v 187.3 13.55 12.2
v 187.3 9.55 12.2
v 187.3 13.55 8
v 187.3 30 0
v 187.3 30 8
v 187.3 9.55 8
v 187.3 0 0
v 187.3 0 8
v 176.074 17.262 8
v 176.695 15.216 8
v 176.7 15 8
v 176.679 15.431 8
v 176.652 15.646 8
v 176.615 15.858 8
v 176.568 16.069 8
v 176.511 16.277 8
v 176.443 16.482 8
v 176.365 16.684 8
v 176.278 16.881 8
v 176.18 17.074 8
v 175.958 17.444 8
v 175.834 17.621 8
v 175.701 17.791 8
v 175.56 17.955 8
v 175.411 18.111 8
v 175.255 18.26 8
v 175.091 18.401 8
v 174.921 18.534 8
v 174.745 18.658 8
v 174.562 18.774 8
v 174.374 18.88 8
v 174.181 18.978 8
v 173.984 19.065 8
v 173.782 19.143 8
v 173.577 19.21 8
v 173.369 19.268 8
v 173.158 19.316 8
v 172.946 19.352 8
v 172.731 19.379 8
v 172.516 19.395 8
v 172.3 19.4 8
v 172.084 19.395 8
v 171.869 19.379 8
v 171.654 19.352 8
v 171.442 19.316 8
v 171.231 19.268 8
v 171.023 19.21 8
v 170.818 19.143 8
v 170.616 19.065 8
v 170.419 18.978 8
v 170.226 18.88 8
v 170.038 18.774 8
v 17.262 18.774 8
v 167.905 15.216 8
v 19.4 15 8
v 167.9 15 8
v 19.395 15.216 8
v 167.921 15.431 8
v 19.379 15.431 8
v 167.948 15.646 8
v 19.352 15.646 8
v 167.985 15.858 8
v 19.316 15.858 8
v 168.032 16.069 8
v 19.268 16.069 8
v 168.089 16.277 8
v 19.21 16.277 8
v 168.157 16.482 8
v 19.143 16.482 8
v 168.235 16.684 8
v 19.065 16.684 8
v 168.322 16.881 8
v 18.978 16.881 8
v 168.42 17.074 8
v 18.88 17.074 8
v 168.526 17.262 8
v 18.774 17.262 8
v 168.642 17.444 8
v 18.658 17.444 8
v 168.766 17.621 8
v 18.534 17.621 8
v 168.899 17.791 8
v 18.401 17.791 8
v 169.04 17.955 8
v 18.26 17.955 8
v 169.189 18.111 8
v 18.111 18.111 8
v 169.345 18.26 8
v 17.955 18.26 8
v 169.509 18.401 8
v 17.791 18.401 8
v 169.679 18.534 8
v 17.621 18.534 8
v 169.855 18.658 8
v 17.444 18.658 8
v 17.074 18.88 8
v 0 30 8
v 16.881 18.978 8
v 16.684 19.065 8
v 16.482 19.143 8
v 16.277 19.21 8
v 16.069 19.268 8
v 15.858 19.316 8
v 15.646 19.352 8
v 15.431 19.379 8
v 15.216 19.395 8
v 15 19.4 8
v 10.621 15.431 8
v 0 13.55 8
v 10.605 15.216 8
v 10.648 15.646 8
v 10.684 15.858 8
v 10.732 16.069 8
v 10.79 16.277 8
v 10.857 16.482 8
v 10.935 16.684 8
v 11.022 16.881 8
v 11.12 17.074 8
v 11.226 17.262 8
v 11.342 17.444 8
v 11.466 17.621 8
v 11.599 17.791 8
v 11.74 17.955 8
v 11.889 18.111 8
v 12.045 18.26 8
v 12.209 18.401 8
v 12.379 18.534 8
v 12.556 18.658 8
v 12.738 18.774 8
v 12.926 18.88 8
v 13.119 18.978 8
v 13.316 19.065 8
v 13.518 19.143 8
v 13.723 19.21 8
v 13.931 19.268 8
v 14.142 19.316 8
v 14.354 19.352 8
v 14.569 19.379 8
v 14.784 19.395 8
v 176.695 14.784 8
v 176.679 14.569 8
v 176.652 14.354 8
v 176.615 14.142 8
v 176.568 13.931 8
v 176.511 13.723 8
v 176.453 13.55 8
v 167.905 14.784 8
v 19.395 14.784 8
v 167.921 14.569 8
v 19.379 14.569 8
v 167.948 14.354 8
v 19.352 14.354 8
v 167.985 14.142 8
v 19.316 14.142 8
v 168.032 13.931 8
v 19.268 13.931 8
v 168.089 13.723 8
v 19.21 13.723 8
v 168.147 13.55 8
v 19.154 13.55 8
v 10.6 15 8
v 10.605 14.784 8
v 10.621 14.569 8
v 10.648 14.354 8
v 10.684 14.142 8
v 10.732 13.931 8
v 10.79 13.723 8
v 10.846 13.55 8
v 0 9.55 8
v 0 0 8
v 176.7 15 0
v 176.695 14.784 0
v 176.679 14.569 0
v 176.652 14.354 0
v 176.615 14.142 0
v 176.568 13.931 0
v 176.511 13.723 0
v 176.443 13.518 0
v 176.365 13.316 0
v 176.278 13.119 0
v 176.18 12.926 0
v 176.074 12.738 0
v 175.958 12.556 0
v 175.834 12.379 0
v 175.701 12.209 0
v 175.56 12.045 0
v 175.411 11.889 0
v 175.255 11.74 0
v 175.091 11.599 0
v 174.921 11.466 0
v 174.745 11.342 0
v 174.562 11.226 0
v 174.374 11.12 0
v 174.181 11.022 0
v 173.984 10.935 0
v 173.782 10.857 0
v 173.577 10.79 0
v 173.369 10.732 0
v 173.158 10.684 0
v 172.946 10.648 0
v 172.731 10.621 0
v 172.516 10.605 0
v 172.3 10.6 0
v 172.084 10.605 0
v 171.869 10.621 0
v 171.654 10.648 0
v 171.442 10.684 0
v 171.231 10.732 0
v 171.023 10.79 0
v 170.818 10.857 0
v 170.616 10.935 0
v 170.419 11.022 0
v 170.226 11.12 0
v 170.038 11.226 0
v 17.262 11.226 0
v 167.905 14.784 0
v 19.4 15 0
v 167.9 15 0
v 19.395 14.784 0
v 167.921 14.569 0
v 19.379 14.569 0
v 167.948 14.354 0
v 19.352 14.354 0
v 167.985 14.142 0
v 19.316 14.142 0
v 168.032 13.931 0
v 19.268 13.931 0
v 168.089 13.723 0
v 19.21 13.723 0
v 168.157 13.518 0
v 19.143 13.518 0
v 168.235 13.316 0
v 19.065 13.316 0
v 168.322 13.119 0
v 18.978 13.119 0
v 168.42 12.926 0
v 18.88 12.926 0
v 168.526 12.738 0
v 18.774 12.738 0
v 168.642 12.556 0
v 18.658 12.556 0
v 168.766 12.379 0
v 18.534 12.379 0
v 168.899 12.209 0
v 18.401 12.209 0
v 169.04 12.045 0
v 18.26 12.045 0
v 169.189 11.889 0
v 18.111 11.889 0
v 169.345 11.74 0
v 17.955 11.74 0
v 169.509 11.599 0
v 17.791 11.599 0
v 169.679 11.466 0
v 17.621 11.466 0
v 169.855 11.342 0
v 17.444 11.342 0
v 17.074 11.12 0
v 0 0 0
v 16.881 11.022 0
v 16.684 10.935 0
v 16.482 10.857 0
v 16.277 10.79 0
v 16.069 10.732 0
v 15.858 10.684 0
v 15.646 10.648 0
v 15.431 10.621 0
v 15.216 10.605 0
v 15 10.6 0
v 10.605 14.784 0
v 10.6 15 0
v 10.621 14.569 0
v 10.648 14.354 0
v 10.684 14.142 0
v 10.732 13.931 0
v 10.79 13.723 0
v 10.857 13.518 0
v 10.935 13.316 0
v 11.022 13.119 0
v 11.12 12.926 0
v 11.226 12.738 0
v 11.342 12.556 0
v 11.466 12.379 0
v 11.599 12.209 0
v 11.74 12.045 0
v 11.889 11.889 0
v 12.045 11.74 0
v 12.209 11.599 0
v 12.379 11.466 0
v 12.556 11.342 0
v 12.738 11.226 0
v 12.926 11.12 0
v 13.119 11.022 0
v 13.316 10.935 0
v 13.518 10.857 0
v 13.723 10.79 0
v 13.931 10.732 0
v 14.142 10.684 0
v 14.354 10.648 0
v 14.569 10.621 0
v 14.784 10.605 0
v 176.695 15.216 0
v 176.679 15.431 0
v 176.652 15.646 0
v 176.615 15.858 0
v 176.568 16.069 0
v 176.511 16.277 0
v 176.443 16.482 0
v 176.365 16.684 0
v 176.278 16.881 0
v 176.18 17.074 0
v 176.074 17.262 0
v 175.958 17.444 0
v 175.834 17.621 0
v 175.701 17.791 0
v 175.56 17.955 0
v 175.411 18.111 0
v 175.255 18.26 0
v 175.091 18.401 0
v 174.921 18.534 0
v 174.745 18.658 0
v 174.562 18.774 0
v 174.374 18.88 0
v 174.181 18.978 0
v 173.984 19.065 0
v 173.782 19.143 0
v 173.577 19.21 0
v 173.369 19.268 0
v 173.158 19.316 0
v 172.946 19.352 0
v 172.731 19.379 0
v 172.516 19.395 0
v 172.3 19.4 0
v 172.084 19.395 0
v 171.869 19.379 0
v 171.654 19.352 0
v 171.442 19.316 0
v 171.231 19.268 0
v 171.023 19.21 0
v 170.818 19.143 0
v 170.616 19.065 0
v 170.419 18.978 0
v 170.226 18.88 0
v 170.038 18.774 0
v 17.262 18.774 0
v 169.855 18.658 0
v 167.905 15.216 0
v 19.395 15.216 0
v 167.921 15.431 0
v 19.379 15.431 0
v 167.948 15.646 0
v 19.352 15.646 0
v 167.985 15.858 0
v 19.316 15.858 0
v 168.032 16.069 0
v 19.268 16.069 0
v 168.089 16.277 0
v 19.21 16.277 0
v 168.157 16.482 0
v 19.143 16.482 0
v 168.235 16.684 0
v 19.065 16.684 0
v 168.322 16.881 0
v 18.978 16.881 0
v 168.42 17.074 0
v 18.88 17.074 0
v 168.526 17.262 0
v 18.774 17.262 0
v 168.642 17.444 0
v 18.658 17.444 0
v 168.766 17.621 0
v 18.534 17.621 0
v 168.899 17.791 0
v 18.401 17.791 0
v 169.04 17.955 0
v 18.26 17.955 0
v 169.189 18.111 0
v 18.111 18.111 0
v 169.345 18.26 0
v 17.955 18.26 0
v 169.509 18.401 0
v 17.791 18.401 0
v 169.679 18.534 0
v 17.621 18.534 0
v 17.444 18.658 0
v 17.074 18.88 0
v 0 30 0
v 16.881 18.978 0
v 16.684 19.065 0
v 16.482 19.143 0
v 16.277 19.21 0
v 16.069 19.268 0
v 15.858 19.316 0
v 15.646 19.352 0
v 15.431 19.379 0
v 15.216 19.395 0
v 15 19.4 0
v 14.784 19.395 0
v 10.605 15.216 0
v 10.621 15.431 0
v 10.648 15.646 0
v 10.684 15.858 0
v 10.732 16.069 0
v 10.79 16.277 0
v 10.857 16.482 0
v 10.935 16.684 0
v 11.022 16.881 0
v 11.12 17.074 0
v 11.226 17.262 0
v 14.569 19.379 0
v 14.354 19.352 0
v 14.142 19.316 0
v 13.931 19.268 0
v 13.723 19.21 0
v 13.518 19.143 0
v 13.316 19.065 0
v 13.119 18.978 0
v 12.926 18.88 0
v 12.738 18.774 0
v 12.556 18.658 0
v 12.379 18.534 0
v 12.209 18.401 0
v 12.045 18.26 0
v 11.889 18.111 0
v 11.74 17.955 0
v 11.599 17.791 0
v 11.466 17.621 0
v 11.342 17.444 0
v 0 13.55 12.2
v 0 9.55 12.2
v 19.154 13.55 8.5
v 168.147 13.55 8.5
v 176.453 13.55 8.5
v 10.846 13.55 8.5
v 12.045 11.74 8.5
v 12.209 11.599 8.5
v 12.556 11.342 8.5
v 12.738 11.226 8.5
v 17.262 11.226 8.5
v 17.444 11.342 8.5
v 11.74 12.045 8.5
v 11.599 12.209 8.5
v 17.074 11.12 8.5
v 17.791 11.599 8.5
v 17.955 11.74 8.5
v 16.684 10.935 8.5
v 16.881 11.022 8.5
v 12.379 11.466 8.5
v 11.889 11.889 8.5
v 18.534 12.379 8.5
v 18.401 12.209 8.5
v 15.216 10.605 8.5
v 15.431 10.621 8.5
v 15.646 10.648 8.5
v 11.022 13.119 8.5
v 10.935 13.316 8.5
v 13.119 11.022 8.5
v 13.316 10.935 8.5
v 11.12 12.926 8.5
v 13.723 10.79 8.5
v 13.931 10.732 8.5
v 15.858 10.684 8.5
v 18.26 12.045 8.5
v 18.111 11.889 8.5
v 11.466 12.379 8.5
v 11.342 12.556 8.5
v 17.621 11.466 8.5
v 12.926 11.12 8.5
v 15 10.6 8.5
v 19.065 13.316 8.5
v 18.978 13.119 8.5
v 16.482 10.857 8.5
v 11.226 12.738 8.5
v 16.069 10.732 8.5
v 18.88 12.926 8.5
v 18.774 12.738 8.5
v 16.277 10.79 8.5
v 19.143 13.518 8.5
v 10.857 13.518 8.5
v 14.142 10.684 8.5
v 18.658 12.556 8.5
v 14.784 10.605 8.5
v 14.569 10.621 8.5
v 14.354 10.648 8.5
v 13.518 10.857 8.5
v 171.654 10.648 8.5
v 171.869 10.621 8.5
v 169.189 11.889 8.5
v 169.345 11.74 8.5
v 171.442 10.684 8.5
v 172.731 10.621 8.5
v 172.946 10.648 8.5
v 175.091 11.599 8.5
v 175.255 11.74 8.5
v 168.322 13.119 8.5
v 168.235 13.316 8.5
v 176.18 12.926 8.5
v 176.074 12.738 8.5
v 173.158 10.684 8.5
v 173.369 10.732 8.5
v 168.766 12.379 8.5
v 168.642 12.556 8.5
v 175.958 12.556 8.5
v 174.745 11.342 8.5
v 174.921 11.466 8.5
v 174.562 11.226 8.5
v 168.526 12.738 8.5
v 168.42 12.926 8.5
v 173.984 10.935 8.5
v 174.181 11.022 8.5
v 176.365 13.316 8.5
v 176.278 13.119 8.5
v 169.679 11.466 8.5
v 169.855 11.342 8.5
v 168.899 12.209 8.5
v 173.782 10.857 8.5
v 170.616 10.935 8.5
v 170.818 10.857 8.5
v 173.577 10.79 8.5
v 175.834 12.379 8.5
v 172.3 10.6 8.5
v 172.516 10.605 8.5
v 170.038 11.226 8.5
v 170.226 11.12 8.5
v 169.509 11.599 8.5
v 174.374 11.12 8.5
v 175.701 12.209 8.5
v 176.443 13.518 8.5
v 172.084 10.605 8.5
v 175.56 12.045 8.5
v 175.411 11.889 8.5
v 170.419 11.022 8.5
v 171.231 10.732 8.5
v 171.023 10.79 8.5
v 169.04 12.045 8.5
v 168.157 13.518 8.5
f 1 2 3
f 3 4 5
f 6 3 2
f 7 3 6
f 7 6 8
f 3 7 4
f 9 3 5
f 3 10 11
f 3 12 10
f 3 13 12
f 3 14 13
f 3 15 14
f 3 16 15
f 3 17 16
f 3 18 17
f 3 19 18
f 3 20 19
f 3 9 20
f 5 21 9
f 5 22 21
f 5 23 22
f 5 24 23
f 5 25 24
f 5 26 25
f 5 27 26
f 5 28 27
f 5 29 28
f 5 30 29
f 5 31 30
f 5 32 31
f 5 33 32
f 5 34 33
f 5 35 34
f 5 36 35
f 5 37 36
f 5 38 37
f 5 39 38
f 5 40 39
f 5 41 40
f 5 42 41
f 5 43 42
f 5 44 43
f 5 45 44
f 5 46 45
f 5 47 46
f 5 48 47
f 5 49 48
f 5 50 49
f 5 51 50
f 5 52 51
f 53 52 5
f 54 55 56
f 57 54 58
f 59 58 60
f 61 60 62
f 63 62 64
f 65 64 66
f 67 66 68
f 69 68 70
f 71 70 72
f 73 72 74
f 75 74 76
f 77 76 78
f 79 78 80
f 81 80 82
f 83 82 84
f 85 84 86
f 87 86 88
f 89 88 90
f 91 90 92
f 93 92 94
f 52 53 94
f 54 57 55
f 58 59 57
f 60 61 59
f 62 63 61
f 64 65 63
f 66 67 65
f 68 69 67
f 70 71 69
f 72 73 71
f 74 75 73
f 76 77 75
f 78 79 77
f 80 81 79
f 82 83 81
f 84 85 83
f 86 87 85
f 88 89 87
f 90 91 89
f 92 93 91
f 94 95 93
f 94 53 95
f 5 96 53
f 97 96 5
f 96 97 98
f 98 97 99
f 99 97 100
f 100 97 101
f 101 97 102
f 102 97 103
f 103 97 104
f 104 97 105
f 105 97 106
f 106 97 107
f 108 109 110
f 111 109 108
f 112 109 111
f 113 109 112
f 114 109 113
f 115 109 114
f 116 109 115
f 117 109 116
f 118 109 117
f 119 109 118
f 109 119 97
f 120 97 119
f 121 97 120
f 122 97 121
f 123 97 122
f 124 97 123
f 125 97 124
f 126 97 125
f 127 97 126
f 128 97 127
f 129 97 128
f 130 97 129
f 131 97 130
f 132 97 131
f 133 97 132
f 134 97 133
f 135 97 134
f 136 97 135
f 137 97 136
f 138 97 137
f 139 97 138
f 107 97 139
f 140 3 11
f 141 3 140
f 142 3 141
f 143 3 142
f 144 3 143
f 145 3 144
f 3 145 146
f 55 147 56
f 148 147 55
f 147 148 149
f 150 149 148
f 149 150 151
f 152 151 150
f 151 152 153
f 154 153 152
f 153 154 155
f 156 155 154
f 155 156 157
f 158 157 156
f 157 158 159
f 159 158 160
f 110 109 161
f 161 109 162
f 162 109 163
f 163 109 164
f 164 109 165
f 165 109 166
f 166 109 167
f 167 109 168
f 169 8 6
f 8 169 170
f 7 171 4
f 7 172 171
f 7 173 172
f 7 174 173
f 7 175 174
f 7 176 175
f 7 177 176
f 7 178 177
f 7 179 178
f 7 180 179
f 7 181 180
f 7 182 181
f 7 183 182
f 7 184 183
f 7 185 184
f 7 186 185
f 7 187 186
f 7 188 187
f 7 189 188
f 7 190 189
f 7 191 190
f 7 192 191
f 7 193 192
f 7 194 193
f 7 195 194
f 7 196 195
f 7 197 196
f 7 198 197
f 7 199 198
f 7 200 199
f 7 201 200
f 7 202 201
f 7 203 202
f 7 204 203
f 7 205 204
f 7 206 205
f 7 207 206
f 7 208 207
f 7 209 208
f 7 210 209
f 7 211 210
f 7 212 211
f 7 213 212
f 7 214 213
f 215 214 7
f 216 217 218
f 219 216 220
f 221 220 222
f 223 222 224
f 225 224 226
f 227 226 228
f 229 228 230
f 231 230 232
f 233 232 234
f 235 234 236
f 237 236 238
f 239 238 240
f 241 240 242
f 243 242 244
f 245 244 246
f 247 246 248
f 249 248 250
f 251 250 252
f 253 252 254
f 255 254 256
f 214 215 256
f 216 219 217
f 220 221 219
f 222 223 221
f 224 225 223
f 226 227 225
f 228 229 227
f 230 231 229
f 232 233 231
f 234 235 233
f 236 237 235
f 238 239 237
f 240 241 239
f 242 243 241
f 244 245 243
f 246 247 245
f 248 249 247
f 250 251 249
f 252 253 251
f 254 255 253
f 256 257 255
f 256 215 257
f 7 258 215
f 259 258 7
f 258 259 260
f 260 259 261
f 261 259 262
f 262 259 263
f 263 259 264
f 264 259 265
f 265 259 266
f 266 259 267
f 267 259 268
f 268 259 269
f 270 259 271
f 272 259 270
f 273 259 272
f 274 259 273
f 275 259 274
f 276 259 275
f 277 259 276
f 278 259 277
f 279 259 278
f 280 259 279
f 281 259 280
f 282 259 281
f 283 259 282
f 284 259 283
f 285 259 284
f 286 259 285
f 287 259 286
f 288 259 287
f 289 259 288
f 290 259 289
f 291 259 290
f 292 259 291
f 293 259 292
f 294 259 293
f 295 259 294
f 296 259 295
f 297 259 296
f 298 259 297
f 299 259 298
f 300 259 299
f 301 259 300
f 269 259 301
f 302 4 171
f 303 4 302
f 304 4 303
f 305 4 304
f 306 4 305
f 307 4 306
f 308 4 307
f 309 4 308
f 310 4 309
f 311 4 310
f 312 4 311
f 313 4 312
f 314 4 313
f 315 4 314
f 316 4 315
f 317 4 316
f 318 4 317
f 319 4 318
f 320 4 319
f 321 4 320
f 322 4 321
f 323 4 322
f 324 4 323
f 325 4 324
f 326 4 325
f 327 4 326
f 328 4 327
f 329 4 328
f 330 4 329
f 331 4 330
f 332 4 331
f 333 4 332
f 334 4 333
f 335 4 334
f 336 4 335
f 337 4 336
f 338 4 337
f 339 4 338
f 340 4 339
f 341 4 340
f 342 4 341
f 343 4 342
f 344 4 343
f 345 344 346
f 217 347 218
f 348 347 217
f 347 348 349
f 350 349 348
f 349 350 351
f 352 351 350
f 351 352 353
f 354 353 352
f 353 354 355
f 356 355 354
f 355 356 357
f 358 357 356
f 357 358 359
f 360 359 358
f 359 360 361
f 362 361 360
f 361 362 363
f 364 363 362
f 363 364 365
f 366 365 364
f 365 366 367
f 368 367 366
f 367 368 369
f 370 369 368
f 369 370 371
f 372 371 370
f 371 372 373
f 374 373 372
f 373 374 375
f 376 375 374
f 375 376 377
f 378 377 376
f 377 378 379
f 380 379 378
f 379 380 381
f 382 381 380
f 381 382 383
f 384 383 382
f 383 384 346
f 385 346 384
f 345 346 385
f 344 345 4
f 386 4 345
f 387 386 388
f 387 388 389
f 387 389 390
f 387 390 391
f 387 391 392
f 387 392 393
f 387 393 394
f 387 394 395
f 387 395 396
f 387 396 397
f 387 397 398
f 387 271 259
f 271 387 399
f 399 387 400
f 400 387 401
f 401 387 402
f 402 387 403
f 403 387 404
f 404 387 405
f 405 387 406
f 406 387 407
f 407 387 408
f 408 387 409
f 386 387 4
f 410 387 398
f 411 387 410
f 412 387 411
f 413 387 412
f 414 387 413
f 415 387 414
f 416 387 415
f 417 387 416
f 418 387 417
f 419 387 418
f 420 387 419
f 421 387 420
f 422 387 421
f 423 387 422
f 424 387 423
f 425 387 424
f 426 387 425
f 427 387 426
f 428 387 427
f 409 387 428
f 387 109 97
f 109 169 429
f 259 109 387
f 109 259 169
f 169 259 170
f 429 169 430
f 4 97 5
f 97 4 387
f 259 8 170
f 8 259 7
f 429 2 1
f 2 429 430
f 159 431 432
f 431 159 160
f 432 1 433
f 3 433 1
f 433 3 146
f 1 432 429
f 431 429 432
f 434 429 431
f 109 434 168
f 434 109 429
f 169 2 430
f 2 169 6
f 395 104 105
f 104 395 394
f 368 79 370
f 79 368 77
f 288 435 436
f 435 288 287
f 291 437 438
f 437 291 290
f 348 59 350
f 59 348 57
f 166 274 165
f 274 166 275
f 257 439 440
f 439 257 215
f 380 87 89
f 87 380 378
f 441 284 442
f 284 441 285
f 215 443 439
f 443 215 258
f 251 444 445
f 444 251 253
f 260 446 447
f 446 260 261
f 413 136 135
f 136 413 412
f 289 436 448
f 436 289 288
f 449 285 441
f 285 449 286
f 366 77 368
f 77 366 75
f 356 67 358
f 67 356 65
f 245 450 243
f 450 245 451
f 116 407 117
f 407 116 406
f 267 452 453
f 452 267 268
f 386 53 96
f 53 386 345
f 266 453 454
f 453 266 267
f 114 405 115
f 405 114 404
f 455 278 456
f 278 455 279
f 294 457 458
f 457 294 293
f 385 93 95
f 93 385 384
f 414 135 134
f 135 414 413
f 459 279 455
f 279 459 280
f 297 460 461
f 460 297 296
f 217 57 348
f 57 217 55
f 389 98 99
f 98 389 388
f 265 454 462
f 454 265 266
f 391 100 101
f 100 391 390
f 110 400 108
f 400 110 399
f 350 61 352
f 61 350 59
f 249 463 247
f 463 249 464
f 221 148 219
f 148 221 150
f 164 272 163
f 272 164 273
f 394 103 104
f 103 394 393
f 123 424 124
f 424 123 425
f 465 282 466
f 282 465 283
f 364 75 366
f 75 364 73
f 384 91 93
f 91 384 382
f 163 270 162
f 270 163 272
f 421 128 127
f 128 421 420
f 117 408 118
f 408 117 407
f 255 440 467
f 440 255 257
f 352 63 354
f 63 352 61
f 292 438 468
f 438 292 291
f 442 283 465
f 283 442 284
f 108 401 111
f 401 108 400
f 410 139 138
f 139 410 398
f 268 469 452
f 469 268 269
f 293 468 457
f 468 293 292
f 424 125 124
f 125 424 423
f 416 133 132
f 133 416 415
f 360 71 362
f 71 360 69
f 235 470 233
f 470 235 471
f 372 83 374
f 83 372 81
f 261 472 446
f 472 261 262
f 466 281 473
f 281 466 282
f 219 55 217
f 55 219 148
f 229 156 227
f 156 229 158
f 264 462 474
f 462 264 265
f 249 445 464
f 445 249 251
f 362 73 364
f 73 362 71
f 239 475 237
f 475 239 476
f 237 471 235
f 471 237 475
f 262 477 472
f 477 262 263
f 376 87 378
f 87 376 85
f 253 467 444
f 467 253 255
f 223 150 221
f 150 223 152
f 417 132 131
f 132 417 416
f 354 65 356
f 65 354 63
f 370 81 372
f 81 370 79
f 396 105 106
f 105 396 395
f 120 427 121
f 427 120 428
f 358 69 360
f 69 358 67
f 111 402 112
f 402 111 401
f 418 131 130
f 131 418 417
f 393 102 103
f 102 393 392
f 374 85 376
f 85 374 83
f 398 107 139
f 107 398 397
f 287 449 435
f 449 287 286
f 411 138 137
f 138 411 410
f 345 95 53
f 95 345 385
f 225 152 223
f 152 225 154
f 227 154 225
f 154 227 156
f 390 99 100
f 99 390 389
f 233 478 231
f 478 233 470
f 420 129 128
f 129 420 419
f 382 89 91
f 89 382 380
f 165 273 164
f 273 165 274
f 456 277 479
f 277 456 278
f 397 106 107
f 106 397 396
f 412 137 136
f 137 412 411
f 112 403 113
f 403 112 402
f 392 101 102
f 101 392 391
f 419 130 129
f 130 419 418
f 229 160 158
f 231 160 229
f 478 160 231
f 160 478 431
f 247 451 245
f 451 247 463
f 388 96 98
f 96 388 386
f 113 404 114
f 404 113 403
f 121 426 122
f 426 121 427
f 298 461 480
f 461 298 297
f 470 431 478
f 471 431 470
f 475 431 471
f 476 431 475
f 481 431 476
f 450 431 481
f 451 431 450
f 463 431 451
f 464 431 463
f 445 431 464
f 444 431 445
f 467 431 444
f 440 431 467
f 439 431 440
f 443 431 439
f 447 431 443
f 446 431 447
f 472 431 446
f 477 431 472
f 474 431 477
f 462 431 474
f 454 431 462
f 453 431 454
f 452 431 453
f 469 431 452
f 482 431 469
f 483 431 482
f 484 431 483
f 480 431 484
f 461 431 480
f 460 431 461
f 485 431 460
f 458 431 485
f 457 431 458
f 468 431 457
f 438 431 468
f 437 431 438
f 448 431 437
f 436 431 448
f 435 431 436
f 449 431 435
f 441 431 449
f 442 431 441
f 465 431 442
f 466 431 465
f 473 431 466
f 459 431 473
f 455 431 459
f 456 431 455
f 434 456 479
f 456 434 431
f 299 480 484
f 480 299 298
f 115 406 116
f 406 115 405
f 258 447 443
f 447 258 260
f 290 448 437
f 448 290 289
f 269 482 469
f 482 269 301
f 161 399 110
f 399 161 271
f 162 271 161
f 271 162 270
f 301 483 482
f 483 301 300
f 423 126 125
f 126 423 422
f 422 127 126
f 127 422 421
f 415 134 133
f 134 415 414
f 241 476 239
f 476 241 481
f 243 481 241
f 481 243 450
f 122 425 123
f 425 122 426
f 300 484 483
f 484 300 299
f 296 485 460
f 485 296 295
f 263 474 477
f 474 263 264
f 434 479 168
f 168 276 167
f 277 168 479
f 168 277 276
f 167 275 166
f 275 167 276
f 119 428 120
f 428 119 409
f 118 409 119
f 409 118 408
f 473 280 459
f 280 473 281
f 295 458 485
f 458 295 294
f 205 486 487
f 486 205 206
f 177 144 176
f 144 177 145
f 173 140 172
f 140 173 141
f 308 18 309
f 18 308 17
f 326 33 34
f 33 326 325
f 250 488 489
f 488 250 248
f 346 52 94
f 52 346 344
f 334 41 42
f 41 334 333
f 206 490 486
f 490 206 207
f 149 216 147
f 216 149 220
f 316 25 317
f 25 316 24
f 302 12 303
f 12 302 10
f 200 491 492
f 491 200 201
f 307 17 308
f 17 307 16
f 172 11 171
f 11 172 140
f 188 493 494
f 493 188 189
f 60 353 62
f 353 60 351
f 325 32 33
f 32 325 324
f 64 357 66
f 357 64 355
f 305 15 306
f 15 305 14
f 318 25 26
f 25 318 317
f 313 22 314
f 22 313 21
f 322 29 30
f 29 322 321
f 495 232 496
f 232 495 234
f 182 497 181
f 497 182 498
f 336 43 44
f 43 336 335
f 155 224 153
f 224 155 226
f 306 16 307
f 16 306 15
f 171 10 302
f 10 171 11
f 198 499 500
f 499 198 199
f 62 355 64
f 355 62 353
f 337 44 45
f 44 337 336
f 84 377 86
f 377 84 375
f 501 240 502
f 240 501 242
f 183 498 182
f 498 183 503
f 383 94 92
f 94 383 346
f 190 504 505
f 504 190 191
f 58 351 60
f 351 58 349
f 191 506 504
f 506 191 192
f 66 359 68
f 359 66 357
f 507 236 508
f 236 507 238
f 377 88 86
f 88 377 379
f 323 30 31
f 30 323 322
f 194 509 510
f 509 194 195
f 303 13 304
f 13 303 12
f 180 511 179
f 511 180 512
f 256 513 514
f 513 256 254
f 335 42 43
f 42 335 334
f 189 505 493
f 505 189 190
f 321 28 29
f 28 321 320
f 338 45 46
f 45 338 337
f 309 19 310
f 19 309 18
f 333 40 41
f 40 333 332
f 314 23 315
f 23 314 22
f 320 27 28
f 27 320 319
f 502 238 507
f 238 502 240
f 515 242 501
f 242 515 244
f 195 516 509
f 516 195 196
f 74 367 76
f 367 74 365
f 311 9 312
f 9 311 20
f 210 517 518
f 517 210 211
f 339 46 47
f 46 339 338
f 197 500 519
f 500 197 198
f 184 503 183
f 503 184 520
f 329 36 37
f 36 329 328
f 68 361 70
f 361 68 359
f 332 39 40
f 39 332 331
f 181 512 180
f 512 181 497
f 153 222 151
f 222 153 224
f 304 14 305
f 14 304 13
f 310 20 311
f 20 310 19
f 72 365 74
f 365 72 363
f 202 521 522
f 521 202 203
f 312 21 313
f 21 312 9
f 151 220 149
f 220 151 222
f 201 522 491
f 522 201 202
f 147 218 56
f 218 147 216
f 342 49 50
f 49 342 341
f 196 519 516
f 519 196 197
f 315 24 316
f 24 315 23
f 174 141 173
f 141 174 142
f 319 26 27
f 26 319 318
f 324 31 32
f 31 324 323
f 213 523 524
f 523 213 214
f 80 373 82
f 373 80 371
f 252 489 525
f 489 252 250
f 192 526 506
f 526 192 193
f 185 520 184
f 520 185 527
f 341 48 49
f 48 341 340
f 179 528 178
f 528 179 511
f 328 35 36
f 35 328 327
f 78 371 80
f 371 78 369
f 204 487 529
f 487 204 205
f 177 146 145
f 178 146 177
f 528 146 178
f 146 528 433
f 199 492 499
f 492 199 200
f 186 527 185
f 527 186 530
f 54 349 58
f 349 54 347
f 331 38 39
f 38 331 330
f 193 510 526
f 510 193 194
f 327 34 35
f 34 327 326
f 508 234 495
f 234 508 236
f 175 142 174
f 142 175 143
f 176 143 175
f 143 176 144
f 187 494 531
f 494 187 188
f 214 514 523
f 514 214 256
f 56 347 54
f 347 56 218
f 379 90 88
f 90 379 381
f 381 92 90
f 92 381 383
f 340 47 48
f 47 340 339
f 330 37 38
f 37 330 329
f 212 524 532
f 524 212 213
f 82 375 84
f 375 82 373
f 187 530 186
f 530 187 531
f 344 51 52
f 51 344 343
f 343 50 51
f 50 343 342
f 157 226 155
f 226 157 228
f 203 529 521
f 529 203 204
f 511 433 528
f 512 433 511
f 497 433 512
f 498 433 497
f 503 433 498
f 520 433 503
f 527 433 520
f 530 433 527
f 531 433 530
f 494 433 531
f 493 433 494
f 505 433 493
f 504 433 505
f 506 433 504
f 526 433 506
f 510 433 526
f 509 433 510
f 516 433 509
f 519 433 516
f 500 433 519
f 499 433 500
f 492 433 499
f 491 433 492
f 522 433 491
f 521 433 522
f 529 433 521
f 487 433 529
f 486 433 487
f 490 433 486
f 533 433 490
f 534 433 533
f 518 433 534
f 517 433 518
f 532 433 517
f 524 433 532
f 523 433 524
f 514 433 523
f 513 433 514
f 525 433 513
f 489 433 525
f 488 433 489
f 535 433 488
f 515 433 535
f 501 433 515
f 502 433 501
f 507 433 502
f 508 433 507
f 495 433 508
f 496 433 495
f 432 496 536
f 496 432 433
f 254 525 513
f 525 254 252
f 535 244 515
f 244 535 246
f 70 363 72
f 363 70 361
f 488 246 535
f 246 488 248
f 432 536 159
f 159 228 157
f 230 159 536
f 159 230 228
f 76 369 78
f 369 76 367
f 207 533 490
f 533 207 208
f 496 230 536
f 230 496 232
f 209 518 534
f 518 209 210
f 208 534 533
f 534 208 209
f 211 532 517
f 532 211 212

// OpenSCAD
$fn=128;

// V70 clamp plate derived from the final V60 plate.
// Local print orientation: plate broad face in XY, thickness in Z.
plate_w = 187.30;
plate_h = 30.00;
plate_t = 8.00;
hole_d = 8.80;

spindle_x = [15.00, 172.30];
spindle_y = 15.00;

// Existing lower box hook, transformed into local print coordinates.
hook_y0 = 9.55;
hook_h = 4.00;
hook_z0 = 7.80;
hook_depth = 4.40;

difference() {
    union() {
        cube([plate_w,plate_h,plate_t]);
        translate([0,hook_y0,hook_z0])
            cube([plate_w,hook_h,hook_depth]);
    }

    // Complete RH8x2 screw plus the Ø8.4 hard-stop collar must pass
    // through during assembly.
    for(x=spindle_x)
        translate([x,spindle_y,-0.5])
            cylinder(d=hole_d,h=plate_t+1.0);
}
